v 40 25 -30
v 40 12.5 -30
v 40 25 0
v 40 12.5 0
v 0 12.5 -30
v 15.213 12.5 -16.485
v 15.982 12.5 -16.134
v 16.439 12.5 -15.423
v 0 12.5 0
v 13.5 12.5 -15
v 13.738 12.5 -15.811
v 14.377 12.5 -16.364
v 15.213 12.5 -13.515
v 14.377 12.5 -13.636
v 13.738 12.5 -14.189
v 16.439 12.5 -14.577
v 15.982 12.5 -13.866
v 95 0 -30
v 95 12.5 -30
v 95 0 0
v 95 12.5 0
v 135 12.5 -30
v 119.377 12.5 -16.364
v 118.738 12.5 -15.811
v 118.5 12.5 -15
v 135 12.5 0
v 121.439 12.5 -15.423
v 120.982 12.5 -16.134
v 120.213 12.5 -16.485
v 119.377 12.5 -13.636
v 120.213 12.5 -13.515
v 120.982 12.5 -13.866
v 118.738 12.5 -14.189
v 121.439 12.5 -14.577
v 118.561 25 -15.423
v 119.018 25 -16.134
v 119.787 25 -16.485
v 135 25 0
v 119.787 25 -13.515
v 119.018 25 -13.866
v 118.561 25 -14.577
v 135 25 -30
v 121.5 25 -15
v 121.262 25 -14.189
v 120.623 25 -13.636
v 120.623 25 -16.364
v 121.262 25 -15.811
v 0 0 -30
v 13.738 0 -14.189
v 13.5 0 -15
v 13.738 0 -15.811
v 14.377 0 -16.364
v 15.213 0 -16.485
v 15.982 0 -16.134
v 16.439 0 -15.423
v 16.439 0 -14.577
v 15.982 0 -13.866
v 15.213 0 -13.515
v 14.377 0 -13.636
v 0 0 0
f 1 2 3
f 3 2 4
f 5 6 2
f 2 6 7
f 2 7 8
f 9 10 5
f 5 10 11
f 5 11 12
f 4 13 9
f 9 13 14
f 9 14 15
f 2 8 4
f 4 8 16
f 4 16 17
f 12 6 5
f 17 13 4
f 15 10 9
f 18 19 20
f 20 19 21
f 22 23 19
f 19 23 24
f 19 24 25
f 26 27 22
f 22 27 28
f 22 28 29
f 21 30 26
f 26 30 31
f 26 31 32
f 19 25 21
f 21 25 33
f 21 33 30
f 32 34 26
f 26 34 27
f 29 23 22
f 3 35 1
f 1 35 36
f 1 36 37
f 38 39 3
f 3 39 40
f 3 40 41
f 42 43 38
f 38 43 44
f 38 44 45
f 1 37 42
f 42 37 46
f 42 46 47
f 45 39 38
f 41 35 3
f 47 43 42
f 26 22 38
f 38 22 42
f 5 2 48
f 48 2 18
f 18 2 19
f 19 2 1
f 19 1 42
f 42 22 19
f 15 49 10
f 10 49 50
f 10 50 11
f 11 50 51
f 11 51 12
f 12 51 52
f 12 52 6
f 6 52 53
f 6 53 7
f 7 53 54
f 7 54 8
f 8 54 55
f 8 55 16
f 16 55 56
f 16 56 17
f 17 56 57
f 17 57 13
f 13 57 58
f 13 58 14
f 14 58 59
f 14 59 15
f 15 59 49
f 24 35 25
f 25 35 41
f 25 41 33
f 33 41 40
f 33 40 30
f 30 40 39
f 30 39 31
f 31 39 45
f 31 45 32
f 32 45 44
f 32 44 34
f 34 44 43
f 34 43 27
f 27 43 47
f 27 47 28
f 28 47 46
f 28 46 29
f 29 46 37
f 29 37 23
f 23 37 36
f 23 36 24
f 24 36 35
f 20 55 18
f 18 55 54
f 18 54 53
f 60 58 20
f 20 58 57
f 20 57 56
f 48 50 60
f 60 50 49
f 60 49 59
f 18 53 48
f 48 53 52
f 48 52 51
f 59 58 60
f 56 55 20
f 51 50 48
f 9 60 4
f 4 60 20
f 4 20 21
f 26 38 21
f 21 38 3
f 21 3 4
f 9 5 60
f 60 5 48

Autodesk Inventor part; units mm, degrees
ref_plane "YZ Plane" through (0, 0, 0) normal (1, 0, 0) x (0, 1, 0)
ref_plane "XZ Plane" through (0, 0, 0) normal (0, 1, 0) x (-1, 0, 0)
ref_plane "XY Plane" through (0, 0, 0) normal (0, 0, 1) x (1, 0, 0)
sketch "Esquisse1" plane through (0, 0, 0) normal (1, 0, 0) x (0, 1, 0)
  line L0 (0, 0) -> (25, 0)
  line L1 (25, 0) -> (25, -30)
  line L2 (25, -30) -> (0, -30)
  line L3 (0, -30) -> (0, 0)
  dimension "d0" = 25
  dimension "d1" = 30
extrude "Extrusion1" add sketch "Esquisse1" along normal blind 135
sketch "Esquisse2" plane through (0, 25, 0) normal (0, 1, 0) x (1, 0, 0)
  circle A0 centre (15, 15) radius 1.5
  line L0 (0, 30) -> (135, 30) projected
  line L1 (0, 30) -> (0, 0) projected
  circle A1 centre (120, 15) radius 1.5
  line L2 (135, 30) -> (135, 0) projected
  dimension "d4" = 3
  dimension "d5" = 15
  dimension "d6" = 15
  dimension "d7" = 3
  dimension "d9" = 15
extrude "Extrusion2" cut sketch "Esquisse2" against normal through all
sketch "Esquisse3" plane through (0, 0, 0) normal (0, 0, 1) x (1, 0, 0)
  line L0 (0, 25) -> (135, 25) projected
  line L1 (0, 25) -> (40, 25)
  line L2 (40, 25) -> (40, 12.5)
  line L3 (40, 12.5) -> (0, 12.5)
  line L4 (0, 12.5) -> (0, 25)
  line L5 (0, 0) -> (135, 0) projected
  line L6 (135, 0) -> (95, 0)
  line L7 (95, 0) -> (95, 12.5)
  line L8 (95, 12.5) -> (135, 12.5)
  line L9 (135, 12.5) -> (135, 0)
  dimension "d12" = 40
  dimension "d13" = 12.5
  dimension "d14" = 40
extrude "Extrusion3" cut sketch "Esquisse3" against normal through all
properties part number "entremoteur"
